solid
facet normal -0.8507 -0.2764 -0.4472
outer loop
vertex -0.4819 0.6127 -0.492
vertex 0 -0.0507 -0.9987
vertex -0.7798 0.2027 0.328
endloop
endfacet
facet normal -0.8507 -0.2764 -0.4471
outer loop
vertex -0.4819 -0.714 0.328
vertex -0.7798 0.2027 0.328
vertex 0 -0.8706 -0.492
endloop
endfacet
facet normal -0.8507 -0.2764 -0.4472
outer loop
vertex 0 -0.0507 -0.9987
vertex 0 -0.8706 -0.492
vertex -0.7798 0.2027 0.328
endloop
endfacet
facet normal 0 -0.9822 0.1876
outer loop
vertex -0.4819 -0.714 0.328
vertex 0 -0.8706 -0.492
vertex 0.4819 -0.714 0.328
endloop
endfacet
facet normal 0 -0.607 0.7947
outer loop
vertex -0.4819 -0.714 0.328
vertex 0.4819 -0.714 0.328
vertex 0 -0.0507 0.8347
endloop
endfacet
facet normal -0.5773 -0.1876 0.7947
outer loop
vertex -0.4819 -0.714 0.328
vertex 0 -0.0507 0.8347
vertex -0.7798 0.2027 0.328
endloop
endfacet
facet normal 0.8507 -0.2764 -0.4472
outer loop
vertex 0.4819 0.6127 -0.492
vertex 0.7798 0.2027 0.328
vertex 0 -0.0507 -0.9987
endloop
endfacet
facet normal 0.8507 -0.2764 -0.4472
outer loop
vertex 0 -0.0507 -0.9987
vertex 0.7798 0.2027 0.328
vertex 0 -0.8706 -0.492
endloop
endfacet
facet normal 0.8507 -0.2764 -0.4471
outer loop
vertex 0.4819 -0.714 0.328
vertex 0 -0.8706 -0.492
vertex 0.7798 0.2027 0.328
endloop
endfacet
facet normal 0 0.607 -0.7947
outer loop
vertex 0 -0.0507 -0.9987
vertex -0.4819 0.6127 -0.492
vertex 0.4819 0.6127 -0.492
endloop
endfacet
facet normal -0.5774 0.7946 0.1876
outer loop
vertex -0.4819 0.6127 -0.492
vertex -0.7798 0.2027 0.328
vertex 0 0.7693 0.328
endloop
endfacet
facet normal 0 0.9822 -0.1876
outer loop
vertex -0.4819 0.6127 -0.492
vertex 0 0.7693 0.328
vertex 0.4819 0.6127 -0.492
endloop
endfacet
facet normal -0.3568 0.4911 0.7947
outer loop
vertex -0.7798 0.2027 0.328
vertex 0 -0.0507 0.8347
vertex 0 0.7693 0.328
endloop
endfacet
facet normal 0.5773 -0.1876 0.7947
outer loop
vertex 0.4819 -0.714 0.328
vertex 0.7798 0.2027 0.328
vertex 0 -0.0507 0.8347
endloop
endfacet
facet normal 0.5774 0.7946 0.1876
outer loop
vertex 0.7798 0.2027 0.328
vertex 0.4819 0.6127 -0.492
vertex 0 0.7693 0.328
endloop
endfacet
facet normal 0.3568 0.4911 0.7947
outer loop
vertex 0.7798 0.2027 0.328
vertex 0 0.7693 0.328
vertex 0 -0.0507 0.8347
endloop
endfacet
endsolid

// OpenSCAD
polyhedron( points = [[-0.481948834202616, -0.714020761447015, 0.327976132293093], [4.7943778734254e-11, -0.870615430230653, -0.491964198539177], [2.59437051294035e-11, -0.0506750992271357, -0.998715191655919], [-0.481948834199606, 0.612670562764805, -0.491964198414988], [-0.779809594579834, 0.202700397304502, 0.327976132293093], [0.481948834248534, -0.714020761447015, 0.327976132293093], [0.779809594478497, 0.202700397304502, 0.327976132293093], [0.481948834229365, 0.612670562694122, -0.491964198296085], [-9.61705563577439e-11, 0.769265231595203, 0.327976132293093], [4.7943778734254e-11, -0.0506750993113159, 0.834727125440704]], faces = [[0, 4, 3, 2, 1], [0, 1, 5], [0, 5, 9], [0, 9, 4], [1, 2, 7, 6, 5], [2, 3, 7], [3, 4, 8], [3, 8, 7], [4, 9, 8], [5, 6, 9], [6, 7, 8], [6, 8, 9]]);
